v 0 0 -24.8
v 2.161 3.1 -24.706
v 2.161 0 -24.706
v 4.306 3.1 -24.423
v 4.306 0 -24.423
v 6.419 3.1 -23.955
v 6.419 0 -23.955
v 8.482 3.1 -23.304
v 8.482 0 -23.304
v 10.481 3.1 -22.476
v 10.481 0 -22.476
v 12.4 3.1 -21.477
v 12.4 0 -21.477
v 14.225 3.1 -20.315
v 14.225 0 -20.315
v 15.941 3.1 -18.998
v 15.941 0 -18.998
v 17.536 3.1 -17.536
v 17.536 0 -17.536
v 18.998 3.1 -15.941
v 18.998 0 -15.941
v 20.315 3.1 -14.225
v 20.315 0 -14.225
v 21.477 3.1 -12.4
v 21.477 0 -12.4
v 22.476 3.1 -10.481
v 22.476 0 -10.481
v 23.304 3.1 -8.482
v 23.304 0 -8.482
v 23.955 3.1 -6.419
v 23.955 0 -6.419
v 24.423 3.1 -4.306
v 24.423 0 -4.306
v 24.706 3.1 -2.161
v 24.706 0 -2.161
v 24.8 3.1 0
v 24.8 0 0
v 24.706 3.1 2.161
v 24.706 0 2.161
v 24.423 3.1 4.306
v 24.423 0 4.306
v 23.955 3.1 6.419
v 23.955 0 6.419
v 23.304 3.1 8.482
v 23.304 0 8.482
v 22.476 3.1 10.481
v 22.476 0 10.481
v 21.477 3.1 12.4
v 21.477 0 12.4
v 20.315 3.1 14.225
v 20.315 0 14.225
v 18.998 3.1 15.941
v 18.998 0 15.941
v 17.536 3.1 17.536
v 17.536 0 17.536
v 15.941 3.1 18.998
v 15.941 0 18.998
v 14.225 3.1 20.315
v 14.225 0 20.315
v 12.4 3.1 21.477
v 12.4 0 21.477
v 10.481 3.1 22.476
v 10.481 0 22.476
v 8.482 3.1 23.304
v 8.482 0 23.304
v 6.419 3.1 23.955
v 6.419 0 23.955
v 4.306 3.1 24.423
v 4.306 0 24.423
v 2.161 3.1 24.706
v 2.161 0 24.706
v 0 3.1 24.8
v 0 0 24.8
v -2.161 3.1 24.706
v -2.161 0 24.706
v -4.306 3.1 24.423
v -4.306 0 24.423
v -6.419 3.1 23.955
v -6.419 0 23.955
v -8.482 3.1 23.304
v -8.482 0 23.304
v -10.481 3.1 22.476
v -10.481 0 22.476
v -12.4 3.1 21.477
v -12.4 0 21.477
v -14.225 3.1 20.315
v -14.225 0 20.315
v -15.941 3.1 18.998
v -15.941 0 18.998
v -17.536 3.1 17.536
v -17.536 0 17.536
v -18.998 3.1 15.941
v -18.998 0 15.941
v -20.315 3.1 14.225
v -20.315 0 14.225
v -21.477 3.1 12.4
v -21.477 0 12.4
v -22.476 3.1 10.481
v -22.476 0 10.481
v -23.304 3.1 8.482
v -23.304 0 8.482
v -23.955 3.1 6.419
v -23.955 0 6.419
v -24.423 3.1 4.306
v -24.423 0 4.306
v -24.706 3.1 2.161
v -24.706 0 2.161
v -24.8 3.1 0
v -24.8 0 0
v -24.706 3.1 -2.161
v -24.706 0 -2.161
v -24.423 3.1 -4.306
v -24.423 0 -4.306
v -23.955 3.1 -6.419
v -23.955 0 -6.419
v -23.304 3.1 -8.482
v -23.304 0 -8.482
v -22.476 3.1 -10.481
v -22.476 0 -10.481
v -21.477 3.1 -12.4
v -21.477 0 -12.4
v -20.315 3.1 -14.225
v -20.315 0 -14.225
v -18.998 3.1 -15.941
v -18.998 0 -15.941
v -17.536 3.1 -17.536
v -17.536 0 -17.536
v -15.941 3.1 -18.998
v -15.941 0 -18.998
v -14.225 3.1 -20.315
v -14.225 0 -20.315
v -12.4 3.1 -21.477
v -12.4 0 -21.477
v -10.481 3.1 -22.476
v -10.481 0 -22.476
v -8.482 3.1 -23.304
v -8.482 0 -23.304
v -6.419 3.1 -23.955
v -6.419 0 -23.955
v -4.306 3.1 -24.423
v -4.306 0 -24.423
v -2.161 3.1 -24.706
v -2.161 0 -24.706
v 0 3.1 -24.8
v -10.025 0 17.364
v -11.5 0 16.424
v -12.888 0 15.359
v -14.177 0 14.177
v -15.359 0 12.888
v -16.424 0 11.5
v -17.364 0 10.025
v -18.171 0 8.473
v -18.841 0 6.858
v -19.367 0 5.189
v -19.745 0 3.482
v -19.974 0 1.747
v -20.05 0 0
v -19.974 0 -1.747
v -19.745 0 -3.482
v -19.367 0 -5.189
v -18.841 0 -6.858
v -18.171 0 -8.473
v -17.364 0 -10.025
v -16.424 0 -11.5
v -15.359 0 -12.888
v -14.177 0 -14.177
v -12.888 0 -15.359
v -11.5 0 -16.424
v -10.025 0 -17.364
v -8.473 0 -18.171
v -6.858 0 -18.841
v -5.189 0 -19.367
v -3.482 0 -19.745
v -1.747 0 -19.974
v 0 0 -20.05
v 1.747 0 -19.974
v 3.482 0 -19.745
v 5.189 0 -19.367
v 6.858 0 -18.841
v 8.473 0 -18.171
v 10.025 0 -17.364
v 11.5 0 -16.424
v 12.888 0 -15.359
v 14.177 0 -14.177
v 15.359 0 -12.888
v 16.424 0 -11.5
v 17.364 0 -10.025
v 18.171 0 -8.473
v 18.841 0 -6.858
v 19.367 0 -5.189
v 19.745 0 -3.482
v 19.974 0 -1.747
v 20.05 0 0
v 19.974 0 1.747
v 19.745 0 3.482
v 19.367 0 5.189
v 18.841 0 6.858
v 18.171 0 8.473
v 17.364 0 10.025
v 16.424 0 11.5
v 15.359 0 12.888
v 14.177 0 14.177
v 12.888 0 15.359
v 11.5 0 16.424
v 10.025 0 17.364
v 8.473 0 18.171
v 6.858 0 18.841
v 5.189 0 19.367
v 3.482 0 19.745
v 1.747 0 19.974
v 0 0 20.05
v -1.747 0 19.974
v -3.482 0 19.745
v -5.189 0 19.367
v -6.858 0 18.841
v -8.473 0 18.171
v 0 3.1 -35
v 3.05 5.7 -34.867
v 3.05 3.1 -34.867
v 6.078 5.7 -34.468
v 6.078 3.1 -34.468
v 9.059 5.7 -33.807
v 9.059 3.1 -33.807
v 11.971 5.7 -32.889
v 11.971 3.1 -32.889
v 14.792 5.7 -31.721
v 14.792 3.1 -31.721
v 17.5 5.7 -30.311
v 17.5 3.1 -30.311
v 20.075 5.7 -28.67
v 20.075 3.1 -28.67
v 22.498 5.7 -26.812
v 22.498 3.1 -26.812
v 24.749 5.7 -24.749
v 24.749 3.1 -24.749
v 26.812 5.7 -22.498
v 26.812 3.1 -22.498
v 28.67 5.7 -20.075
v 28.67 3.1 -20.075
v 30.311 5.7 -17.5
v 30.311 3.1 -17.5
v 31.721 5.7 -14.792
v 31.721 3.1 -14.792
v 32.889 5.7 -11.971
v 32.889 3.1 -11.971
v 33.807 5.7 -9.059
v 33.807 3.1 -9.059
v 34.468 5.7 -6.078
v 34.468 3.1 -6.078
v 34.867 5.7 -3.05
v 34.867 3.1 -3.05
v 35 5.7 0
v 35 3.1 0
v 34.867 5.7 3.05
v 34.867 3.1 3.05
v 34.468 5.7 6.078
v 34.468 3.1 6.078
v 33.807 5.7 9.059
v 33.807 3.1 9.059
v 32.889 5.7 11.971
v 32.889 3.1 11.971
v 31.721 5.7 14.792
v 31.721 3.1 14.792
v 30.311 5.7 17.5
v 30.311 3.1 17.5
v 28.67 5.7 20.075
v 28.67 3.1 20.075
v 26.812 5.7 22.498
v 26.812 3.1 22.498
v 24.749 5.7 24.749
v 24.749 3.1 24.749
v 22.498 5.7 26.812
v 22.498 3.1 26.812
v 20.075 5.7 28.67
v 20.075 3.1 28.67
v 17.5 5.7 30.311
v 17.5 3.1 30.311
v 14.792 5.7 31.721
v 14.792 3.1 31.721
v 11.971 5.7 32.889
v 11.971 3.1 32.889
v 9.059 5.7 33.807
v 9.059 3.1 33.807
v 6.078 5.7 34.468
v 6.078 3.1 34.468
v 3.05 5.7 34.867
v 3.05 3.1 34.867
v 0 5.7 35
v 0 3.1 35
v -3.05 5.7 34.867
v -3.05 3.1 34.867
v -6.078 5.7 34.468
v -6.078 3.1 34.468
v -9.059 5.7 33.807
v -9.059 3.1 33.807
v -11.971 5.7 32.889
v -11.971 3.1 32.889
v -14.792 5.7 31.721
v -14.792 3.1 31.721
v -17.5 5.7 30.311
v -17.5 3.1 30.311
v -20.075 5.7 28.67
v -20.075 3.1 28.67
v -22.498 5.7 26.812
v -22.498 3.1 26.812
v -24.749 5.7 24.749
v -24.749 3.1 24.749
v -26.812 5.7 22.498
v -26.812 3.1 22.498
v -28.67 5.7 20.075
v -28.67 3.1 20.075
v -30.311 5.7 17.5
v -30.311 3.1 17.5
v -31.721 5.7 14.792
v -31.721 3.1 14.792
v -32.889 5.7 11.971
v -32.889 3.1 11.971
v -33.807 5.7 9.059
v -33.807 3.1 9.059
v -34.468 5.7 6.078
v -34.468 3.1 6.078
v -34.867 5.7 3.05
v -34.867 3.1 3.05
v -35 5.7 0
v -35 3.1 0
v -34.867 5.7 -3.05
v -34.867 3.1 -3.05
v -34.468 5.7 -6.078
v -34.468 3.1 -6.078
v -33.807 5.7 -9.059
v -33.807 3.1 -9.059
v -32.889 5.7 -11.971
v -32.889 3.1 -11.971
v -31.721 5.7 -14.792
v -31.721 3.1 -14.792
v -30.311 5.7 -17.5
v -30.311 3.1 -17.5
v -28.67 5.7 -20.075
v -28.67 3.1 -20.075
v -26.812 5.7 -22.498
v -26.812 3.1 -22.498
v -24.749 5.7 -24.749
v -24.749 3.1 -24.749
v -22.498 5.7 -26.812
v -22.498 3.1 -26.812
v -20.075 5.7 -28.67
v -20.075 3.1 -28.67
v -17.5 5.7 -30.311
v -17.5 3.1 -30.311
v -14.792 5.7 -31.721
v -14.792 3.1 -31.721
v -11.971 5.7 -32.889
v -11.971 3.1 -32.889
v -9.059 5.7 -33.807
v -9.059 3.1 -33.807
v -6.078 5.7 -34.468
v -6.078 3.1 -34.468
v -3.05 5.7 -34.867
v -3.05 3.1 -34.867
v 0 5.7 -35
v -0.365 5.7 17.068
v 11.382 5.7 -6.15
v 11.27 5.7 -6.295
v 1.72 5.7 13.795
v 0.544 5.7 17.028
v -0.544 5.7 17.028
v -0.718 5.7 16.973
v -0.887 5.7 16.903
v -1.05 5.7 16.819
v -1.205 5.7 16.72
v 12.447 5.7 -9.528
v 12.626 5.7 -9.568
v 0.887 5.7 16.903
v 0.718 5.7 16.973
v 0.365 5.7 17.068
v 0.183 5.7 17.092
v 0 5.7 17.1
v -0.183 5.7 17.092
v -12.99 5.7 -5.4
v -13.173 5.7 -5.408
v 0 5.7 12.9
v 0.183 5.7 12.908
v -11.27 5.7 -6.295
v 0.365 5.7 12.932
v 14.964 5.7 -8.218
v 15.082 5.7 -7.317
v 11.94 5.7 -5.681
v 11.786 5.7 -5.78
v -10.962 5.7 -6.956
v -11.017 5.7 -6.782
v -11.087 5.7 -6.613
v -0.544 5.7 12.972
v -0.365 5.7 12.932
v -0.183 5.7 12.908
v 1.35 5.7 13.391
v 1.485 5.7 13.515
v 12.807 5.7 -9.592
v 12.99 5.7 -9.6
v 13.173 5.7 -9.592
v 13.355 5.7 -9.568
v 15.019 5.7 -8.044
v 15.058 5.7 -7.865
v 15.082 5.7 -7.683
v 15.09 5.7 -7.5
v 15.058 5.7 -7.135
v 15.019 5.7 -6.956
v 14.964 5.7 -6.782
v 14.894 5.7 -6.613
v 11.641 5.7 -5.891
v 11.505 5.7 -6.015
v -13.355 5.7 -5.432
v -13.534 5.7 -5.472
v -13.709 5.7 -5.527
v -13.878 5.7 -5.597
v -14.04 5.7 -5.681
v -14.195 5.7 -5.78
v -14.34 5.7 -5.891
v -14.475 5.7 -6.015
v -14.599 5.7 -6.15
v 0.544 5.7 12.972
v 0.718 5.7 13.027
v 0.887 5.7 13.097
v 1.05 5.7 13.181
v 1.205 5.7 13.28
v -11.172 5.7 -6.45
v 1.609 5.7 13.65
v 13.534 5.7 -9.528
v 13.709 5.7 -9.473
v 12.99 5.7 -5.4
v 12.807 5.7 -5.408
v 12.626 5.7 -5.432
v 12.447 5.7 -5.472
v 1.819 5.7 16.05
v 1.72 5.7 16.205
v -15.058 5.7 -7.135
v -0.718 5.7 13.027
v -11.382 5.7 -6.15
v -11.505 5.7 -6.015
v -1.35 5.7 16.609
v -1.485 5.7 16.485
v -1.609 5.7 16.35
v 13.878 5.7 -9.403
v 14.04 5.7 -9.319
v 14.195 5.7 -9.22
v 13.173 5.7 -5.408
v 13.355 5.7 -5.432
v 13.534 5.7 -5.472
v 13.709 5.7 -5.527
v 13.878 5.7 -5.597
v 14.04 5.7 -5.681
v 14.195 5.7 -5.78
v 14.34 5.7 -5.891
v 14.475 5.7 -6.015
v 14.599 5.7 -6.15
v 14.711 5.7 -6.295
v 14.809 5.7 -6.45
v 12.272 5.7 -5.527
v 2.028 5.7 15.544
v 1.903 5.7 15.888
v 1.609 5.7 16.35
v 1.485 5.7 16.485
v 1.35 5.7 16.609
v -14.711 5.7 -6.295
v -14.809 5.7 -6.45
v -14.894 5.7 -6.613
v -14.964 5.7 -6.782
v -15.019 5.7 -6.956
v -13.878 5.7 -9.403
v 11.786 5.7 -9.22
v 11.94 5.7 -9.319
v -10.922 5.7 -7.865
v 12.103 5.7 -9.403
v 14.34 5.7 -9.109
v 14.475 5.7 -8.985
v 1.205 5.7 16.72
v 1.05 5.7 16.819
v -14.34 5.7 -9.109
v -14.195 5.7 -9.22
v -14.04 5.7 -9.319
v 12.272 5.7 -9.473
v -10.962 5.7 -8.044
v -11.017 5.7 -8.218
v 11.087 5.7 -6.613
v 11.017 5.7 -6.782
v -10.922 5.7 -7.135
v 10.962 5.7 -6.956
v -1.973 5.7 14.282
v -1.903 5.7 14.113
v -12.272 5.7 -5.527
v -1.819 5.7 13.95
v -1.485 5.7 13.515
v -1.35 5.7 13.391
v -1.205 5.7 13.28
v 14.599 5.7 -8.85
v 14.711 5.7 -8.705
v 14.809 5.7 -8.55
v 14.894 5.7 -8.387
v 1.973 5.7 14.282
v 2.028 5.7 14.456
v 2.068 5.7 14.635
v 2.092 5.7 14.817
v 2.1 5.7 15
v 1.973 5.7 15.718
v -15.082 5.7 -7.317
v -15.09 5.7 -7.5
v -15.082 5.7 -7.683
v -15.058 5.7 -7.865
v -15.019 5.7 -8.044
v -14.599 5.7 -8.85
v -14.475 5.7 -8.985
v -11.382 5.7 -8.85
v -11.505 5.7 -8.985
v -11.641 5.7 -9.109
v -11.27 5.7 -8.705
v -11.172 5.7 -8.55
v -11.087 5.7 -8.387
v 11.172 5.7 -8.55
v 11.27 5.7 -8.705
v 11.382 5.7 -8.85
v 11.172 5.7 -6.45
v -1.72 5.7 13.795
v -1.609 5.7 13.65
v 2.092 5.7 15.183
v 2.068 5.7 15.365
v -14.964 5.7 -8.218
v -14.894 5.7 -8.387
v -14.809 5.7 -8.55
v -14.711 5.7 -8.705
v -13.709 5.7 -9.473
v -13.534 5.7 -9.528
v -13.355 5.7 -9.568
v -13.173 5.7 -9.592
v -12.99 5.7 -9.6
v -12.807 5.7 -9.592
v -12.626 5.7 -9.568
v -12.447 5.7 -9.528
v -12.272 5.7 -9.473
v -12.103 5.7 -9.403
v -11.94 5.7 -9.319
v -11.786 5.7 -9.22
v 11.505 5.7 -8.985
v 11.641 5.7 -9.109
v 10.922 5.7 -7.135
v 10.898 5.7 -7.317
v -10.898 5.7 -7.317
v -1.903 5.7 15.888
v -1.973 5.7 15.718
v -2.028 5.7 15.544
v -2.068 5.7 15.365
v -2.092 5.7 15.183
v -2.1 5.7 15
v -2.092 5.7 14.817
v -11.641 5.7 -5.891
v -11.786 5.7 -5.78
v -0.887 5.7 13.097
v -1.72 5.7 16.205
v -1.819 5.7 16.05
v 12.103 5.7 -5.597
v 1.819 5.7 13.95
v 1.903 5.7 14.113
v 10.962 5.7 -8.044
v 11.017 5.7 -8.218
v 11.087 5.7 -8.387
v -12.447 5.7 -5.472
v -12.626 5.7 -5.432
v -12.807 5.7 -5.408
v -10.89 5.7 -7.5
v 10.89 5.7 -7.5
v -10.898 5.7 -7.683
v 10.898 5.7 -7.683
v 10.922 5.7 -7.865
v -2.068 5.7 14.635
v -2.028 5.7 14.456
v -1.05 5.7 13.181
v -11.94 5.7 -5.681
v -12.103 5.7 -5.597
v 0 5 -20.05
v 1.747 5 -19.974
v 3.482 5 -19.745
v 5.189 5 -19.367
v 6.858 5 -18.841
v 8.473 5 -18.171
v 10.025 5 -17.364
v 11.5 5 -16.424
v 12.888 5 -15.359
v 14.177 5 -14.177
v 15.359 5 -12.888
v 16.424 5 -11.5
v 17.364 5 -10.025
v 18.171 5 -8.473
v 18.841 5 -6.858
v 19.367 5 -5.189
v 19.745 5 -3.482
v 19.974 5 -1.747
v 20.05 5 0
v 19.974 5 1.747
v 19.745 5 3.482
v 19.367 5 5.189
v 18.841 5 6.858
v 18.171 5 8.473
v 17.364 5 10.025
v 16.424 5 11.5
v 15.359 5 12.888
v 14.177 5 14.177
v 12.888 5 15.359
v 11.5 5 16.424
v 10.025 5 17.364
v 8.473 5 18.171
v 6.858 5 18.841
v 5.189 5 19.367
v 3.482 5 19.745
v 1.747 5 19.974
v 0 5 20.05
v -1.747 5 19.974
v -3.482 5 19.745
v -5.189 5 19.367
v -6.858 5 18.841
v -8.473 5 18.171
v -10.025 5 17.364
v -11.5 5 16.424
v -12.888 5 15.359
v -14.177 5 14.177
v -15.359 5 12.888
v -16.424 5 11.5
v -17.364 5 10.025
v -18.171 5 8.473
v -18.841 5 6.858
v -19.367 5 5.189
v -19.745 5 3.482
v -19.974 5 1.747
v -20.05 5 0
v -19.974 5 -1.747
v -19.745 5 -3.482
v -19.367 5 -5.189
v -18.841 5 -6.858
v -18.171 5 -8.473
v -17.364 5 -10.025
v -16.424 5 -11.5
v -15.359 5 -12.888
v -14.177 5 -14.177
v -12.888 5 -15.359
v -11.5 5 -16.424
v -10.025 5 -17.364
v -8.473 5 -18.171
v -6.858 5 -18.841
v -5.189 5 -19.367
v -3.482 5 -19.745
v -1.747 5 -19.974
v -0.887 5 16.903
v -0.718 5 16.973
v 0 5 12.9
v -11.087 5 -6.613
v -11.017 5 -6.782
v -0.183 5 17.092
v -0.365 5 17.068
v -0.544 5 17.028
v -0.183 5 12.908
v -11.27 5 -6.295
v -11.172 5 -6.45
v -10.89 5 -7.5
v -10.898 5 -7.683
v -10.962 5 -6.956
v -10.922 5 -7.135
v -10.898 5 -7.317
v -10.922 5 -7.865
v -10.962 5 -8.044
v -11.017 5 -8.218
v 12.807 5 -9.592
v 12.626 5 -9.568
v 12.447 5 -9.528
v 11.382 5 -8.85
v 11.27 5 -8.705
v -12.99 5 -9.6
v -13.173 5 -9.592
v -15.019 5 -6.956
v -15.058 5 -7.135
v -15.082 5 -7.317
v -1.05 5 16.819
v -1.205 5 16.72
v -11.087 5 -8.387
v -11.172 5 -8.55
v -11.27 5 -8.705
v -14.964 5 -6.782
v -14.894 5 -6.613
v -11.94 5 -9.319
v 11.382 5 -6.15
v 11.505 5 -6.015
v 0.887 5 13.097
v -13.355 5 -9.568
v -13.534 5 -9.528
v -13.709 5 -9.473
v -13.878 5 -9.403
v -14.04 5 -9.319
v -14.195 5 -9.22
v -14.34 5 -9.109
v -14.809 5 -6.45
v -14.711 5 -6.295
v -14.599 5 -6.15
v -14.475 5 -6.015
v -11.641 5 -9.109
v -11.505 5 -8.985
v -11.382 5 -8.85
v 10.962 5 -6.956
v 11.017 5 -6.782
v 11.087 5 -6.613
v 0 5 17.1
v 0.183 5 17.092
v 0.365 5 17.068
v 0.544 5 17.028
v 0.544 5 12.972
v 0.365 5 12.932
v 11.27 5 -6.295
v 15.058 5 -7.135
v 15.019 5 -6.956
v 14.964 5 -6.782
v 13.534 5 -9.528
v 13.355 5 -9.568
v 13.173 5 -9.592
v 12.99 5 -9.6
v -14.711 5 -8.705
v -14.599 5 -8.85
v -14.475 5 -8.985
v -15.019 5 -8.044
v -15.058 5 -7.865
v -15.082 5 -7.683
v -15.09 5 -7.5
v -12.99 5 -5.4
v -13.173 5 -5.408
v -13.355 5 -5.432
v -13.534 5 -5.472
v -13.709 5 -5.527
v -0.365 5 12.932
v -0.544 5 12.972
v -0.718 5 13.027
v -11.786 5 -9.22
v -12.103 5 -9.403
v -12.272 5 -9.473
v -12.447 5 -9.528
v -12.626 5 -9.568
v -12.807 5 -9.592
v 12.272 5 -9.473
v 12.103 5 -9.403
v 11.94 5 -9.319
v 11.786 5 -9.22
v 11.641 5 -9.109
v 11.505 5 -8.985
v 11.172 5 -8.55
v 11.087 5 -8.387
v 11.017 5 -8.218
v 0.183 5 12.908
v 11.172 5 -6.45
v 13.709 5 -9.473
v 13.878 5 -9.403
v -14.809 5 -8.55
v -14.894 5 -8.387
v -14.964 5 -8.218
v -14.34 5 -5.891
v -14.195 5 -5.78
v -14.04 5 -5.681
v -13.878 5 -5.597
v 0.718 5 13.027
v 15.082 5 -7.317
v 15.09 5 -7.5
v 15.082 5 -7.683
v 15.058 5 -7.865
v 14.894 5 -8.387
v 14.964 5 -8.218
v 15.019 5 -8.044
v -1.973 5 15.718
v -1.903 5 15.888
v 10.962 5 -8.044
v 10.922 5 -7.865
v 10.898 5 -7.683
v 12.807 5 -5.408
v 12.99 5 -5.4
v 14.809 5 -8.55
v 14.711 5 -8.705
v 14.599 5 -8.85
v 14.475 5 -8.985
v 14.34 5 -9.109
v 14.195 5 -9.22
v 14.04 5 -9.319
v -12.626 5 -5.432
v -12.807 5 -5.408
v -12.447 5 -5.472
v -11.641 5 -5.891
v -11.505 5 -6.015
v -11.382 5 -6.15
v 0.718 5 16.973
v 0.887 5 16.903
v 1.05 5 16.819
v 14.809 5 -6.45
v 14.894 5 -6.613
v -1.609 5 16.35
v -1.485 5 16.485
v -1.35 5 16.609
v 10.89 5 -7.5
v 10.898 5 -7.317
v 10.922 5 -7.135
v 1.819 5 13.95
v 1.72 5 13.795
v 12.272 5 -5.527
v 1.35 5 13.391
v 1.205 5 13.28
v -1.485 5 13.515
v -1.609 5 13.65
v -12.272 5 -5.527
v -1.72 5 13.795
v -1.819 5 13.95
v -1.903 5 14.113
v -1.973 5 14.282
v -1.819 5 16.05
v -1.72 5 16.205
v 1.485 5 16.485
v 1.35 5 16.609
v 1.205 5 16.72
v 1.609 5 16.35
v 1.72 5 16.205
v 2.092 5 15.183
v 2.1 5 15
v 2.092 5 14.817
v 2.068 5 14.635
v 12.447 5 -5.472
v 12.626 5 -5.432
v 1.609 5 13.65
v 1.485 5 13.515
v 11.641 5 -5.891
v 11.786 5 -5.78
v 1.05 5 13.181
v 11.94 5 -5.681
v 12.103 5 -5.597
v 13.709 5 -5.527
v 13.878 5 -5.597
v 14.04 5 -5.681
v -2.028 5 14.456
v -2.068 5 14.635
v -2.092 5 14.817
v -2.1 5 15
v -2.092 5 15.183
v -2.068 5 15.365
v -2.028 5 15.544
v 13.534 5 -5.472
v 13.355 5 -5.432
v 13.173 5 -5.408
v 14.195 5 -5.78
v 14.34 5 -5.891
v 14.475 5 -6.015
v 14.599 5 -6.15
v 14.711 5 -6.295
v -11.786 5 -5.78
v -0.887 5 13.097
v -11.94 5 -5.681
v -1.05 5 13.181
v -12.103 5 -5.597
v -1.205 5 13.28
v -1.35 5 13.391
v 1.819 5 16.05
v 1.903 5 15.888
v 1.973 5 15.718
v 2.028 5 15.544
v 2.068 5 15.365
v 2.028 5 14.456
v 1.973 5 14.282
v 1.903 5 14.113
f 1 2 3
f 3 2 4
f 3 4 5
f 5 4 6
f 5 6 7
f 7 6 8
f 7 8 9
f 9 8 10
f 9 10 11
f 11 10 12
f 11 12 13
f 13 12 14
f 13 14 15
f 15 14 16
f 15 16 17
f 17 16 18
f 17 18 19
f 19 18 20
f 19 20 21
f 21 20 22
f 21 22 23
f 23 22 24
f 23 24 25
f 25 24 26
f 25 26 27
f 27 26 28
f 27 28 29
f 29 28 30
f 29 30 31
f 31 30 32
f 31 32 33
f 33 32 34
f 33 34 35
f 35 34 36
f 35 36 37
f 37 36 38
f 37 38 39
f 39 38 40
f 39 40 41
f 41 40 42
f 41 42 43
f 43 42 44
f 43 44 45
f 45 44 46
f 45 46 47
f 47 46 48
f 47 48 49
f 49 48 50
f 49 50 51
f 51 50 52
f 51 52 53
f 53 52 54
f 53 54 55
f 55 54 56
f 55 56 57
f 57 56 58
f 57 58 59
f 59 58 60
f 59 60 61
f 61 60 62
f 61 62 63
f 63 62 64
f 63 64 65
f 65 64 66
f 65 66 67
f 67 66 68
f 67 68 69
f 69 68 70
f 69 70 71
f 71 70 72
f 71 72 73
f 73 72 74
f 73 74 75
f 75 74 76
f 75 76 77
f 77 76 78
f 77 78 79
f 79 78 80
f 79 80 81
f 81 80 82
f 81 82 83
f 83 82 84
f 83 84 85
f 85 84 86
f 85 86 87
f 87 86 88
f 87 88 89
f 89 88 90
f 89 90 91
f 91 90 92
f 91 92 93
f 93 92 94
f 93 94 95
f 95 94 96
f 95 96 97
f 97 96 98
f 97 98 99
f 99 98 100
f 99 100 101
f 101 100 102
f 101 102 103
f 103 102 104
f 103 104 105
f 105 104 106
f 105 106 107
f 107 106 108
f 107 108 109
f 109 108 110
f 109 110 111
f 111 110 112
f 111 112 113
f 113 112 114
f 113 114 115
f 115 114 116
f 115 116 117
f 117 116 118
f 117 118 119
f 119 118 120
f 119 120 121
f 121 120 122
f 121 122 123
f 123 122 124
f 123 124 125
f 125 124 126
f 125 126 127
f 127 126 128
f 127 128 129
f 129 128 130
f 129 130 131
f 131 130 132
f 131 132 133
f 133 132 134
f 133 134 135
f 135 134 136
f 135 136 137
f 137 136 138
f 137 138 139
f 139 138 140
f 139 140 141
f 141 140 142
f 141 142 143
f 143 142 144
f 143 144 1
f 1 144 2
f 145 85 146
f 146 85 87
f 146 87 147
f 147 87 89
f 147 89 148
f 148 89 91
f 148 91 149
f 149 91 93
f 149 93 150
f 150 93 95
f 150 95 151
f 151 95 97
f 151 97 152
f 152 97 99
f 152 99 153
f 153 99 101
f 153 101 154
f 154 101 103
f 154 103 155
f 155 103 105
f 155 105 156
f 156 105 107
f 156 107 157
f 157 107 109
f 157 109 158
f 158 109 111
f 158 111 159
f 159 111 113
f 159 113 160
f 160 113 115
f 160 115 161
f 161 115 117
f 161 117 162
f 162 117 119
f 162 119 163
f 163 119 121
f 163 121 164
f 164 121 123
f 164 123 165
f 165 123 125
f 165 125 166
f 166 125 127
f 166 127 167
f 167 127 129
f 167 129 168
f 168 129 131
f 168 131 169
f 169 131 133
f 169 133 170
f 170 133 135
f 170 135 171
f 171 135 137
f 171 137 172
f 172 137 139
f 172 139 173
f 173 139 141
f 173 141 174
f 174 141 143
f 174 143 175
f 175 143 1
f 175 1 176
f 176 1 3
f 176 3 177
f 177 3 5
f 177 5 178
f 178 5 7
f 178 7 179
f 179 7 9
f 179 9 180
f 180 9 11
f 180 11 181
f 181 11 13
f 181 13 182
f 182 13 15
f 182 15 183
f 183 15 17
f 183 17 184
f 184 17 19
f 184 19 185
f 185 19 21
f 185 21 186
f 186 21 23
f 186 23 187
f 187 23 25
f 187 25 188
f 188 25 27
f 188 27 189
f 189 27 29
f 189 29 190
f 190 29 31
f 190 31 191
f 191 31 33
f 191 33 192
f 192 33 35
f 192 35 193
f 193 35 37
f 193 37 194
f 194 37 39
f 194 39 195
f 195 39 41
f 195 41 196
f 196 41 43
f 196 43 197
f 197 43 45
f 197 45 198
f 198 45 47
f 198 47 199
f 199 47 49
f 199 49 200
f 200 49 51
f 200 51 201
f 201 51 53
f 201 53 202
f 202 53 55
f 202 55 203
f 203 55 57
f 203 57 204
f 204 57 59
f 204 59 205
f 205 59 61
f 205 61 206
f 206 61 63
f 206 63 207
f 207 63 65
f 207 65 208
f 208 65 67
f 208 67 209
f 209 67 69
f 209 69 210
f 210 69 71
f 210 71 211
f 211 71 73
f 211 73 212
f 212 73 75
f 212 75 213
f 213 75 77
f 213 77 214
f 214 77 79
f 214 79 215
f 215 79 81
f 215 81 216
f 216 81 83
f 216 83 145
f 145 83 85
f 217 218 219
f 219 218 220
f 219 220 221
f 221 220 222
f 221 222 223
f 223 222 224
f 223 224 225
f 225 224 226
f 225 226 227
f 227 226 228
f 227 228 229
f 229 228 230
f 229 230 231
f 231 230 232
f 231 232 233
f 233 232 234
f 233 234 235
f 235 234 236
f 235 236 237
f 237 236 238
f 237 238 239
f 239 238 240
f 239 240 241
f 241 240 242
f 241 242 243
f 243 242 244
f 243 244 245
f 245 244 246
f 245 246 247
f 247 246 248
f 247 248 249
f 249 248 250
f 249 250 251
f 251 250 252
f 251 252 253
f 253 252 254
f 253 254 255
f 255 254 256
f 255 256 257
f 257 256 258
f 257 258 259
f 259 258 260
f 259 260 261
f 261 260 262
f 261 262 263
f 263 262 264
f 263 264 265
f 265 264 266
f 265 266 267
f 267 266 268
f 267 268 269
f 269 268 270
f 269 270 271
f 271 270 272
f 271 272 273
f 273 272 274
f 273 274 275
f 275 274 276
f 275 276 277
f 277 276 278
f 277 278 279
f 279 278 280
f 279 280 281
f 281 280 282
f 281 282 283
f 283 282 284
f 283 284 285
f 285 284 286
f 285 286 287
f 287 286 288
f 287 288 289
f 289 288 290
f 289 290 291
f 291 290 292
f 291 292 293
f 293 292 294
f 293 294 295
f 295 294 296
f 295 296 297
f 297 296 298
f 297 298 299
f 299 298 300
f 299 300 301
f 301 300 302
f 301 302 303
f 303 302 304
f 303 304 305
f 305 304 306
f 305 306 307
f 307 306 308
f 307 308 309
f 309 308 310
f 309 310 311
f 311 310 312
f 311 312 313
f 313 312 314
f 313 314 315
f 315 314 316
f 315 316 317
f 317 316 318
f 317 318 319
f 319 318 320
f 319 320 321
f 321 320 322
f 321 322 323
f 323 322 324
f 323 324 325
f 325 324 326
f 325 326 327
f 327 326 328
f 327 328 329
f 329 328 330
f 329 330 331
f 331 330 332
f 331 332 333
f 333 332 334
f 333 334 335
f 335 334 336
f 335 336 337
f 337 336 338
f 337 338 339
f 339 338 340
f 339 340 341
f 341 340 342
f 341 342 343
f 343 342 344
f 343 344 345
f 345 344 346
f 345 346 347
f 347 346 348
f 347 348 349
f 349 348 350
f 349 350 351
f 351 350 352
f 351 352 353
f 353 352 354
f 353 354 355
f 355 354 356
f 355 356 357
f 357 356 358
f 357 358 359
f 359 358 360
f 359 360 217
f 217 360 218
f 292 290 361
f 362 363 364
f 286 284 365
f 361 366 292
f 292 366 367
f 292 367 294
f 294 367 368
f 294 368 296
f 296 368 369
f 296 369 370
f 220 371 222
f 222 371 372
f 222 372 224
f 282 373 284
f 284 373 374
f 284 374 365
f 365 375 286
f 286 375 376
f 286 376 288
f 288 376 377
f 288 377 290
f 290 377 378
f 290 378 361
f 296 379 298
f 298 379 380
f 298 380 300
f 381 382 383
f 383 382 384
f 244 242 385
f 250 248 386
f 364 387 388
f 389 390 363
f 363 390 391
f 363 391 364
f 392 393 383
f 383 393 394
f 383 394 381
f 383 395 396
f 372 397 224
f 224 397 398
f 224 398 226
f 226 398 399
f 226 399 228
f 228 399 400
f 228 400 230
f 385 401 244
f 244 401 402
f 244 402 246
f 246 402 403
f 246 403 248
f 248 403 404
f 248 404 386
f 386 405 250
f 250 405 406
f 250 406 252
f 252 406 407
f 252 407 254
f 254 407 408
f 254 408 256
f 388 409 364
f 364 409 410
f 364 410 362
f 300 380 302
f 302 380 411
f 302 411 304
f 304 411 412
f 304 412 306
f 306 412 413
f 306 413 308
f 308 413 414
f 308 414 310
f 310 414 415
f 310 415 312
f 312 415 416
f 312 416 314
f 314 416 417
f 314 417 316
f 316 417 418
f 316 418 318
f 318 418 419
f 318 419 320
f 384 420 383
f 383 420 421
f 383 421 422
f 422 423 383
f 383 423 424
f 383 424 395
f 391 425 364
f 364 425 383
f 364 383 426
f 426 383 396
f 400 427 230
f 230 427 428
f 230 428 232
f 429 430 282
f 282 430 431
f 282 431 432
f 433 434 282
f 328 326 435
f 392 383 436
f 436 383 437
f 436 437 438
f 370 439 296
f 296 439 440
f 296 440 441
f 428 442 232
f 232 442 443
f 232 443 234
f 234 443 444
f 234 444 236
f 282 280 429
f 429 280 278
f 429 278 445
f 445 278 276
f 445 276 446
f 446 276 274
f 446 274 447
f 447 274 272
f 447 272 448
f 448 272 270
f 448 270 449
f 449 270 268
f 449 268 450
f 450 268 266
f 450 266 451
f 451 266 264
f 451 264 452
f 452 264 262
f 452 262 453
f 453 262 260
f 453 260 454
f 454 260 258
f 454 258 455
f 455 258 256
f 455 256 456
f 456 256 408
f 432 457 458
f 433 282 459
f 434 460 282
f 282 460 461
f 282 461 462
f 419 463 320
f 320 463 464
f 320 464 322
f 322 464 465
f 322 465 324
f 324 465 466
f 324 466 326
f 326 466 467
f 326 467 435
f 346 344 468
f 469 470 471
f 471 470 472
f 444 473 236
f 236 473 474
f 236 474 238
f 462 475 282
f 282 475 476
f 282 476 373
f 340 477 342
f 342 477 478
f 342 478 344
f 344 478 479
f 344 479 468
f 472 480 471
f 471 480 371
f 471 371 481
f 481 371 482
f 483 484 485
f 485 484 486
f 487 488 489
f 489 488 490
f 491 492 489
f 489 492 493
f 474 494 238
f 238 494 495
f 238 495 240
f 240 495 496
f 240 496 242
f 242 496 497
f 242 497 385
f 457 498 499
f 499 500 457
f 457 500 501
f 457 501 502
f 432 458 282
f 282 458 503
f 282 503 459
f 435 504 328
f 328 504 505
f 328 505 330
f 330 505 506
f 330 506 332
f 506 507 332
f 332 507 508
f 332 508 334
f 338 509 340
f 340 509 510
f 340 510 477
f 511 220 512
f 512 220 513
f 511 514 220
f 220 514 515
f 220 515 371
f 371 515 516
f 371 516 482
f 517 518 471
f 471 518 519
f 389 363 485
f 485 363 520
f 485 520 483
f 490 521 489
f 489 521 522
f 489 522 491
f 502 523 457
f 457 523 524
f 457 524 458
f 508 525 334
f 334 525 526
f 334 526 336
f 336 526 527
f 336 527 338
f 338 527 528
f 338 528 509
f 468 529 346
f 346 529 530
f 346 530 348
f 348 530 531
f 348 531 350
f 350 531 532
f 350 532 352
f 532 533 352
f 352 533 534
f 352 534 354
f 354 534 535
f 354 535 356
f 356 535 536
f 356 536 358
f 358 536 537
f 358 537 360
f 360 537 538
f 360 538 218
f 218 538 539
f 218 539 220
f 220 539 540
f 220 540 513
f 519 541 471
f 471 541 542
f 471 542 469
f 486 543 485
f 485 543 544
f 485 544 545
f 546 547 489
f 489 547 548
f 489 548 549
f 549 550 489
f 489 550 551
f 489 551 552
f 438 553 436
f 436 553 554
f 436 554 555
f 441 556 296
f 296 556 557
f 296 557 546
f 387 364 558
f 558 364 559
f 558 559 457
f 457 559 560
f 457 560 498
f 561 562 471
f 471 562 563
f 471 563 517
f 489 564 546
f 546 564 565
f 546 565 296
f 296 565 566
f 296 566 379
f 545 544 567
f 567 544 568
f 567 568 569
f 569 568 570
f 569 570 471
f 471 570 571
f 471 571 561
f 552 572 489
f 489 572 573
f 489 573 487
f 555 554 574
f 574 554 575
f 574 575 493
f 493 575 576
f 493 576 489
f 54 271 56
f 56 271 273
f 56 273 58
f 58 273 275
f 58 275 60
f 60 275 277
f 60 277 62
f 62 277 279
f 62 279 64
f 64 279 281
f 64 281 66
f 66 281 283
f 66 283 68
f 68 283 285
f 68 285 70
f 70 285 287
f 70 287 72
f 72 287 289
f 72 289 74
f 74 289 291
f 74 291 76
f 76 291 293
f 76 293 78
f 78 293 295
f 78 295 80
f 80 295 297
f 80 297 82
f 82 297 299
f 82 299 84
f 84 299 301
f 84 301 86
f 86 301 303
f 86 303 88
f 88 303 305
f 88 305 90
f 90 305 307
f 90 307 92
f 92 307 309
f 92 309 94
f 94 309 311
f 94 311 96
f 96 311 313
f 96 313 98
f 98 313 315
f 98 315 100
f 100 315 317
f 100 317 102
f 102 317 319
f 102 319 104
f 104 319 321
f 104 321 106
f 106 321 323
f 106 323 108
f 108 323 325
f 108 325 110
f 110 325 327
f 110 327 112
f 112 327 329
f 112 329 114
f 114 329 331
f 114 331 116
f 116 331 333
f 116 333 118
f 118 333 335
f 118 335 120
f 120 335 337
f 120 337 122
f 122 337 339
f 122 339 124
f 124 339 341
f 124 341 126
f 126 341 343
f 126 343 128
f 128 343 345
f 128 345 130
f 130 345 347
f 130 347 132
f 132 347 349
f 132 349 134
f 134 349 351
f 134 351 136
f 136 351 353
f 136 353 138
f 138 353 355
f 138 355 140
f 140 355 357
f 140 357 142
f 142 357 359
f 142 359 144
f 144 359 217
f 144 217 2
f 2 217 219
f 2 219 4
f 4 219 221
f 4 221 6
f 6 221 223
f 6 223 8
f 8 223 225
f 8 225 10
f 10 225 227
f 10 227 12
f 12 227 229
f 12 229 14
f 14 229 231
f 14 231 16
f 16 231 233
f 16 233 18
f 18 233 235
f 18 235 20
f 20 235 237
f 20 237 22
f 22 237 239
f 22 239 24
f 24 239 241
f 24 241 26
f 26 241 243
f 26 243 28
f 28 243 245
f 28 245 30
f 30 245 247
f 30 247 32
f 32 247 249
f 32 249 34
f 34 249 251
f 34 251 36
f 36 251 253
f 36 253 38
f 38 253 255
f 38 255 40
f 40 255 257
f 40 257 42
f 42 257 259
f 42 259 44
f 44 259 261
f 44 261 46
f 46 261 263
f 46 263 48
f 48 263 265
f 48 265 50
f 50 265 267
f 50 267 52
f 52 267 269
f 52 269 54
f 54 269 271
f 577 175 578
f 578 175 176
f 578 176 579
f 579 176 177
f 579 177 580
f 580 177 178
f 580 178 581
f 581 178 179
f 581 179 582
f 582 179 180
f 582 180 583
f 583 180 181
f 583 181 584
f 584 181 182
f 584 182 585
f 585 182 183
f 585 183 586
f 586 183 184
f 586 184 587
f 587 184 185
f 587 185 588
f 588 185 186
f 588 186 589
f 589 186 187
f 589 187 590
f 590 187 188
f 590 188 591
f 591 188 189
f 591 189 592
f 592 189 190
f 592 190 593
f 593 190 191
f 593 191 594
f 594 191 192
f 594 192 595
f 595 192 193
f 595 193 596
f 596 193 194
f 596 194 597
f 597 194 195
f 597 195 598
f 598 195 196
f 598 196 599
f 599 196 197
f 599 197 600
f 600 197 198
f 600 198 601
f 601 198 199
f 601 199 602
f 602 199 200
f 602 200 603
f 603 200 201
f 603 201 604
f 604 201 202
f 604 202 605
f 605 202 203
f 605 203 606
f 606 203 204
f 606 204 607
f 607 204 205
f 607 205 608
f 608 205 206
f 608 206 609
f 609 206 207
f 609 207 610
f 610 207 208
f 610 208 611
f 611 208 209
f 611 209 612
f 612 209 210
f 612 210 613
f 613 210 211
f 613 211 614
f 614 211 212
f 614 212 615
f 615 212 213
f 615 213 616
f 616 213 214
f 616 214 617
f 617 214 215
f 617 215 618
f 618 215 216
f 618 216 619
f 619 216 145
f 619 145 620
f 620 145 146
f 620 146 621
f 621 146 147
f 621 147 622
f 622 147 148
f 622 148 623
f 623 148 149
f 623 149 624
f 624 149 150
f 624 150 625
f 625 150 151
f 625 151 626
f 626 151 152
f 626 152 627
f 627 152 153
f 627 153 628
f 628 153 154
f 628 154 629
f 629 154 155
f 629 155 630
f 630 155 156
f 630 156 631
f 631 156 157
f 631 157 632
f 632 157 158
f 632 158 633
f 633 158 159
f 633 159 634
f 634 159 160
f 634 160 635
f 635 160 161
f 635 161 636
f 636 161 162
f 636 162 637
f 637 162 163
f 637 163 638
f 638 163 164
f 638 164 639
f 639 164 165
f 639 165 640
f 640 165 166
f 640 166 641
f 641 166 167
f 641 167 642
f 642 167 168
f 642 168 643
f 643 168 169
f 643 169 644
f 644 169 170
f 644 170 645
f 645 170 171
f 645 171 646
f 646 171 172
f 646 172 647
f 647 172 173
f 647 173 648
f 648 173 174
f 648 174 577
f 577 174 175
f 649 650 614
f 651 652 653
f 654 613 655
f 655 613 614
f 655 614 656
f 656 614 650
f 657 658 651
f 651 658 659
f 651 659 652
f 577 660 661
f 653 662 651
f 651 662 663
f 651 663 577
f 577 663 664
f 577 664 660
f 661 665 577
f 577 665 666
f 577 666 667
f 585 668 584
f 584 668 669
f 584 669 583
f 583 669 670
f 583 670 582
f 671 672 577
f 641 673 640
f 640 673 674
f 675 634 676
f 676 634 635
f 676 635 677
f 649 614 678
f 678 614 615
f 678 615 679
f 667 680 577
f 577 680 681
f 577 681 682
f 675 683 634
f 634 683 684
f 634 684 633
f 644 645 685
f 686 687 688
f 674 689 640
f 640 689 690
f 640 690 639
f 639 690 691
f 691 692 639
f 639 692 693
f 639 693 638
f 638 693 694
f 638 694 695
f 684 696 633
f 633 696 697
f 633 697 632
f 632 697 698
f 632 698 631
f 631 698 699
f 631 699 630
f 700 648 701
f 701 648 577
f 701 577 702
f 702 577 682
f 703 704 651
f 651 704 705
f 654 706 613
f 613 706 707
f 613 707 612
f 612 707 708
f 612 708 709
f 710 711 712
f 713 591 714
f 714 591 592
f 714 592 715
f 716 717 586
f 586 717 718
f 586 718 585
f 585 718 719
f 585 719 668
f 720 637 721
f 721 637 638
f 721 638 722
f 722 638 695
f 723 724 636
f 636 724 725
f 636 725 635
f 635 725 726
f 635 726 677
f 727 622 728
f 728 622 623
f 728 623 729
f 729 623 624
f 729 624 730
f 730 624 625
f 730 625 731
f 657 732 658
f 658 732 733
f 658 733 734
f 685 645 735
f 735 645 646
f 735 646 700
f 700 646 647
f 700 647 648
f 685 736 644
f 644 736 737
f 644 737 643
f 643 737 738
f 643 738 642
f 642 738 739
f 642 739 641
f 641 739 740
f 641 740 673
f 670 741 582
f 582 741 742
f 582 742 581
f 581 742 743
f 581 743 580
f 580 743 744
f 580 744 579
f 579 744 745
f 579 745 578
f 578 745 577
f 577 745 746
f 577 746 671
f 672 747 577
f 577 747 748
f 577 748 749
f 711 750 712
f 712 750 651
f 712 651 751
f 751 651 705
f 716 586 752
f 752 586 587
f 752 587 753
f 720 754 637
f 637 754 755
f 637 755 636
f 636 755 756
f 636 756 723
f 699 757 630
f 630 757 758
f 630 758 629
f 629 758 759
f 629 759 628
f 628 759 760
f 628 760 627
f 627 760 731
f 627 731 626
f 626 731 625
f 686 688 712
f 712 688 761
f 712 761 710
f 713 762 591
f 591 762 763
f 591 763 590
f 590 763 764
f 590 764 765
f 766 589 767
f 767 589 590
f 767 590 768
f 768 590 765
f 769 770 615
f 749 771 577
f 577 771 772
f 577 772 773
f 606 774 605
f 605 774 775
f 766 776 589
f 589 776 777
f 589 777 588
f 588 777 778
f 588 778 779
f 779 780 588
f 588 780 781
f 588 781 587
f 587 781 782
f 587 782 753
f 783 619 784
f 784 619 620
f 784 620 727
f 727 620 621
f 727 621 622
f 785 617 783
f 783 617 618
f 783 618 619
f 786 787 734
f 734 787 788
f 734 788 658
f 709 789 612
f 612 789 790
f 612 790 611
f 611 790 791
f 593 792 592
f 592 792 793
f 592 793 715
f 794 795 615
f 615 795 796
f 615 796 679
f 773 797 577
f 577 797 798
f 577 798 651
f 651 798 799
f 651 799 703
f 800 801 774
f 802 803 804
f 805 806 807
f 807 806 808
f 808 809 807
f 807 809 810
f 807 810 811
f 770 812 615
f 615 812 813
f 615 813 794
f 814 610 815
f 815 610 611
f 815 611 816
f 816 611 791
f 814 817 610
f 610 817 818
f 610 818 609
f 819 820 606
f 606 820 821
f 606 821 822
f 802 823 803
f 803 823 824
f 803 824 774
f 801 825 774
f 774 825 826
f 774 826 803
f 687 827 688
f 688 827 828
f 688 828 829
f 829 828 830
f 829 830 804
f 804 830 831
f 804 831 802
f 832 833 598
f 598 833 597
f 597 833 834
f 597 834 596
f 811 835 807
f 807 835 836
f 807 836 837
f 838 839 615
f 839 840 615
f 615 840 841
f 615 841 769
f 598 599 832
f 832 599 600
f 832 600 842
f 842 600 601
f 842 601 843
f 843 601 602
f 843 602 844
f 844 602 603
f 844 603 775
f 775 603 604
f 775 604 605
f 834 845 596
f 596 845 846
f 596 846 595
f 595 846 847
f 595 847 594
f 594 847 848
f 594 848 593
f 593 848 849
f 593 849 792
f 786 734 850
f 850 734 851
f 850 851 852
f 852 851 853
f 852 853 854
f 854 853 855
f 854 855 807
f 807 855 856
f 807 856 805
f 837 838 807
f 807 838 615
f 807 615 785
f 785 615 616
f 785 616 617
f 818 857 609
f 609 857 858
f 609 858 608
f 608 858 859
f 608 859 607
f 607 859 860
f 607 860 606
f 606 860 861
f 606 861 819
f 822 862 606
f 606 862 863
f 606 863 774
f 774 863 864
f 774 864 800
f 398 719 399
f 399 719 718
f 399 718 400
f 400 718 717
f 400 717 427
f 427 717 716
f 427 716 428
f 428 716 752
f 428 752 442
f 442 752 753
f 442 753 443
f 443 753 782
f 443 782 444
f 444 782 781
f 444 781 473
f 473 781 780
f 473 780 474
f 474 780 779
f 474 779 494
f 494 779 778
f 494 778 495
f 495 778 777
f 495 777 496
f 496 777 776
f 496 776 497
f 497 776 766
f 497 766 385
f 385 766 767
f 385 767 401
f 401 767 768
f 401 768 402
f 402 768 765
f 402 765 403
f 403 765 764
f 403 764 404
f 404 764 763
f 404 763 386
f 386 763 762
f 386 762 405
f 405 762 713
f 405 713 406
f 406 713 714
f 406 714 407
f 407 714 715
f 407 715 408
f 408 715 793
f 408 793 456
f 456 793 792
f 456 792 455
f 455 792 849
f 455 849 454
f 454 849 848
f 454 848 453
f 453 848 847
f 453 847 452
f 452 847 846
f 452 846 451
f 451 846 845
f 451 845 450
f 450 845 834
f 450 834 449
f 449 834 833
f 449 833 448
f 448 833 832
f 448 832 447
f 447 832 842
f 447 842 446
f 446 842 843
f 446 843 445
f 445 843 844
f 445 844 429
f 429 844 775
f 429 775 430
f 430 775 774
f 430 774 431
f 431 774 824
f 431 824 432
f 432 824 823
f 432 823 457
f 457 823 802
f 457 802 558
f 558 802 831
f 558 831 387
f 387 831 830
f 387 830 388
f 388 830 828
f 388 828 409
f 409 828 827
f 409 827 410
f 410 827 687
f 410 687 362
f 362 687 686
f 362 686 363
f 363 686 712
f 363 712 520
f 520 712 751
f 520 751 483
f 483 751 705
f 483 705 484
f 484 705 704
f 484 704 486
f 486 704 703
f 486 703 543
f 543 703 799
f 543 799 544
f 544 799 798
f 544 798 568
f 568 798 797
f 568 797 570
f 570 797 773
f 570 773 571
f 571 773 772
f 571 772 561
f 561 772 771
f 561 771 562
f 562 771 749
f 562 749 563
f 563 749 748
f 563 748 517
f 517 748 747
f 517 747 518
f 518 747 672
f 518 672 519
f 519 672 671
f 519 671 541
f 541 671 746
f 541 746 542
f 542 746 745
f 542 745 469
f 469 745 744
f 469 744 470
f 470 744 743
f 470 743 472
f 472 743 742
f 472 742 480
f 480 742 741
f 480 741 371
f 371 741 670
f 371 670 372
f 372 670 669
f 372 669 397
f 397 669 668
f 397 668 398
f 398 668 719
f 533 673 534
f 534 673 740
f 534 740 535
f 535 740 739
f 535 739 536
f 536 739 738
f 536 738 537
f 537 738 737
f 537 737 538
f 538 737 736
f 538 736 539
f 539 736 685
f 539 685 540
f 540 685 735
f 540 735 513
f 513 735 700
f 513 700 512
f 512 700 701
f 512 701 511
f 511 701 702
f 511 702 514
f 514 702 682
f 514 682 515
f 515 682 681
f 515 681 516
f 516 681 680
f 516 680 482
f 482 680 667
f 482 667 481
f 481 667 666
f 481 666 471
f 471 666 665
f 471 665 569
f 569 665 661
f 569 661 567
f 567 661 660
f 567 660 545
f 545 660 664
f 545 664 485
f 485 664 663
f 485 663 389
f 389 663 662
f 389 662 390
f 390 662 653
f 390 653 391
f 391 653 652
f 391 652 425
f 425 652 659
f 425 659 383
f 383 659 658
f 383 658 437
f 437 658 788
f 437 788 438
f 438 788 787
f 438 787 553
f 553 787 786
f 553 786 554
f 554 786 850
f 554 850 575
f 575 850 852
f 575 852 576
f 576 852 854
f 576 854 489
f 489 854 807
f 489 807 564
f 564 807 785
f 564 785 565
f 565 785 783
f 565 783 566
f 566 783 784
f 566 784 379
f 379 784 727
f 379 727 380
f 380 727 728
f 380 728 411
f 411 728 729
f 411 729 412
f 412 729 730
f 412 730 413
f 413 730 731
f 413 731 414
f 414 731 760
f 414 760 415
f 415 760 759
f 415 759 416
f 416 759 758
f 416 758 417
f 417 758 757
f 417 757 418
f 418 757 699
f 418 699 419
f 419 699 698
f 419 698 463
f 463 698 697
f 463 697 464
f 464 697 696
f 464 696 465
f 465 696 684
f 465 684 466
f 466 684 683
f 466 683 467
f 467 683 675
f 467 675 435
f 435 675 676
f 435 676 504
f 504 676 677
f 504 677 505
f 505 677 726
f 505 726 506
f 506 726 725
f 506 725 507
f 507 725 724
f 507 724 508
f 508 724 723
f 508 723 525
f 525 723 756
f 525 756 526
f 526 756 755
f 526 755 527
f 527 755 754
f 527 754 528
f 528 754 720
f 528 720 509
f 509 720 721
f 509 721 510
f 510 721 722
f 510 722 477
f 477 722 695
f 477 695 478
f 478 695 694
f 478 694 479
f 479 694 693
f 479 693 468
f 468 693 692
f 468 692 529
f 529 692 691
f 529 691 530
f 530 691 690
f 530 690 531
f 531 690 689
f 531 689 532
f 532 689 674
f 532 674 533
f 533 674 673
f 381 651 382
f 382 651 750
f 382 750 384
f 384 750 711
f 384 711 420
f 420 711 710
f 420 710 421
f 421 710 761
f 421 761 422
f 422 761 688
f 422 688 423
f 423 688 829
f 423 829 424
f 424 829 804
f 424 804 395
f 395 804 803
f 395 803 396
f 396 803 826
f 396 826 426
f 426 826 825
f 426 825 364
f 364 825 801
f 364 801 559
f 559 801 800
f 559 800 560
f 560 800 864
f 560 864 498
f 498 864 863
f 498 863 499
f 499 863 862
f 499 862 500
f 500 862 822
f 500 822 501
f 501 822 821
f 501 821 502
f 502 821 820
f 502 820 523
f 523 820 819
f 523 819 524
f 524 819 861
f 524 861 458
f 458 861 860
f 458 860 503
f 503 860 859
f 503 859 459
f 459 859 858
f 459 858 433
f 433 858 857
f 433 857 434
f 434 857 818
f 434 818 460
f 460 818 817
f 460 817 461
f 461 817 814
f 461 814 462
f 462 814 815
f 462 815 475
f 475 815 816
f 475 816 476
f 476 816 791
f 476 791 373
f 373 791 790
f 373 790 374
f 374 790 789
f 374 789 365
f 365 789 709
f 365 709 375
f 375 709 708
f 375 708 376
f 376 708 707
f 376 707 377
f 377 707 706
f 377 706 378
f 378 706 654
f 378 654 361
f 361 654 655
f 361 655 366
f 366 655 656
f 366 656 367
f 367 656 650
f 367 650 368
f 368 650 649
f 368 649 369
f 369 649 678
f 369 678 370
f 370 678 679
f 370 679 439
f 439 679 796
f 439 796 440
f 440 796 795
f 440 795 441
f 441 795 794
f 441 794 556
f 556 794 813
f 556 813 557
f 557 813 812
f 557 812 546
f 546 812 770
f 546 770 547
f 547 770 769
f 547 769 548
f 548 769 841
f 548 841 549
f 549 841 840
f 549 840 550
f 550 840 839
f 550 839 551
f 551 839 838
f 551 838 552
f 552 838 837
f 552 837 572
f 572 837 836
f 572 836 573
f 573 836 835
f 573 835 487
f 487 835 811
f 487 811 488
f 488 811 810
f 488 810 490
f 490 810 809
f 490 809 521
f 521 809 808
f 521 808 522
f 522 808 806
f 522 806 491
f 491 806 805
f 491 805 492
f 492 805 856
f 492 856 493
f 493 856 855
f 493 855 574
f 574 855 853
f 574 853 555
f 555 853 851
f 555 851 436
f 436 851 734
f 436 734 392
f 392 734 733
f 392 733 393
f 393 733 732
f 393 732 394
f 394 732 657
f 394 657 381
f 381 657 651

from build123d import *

# Parameters (mm, degrees)
SKETCH1_R           = 24.8
BOSS_EXTRUDE1_DEPTH = 3.1
SKETCH2_R           = 35
BOSS_EXTRUDE2_DEPTH = 2.6
SKETCH3_R           = 20.05
CUT_EXTRUDE1_DEPTH  = 5
CUT_EXTRUDE2_REACH  = 51.749
SKETCH4_R           = 2.1


with BuildPart() as part:
    # Sketch1 → Boss-Extrude1 (new body)
    with BuildSketch(Plane(origin=(0, 0, 0), x_dir=(1, 0, 0), z_dir=(0, 1, 0))):
        with Locations(Location((0, 0, 0), (0, 0, 90))):
            Circle(SKETCH1_R)
    extrude(amount=BOSS_EXTRUDE1_DEPTH)

    # Sketch2 → Boss-Extrude2 (add)
    with BuildSketch(Plane(origin=(0, 3.1, 0), x_dir=(1, 0, 0), z_dir=(0, 1, 0))):
        with Locations(Location((0, 0, 0), (0, 0, 270))):
            Circle(SKETCH2_R)
    extrude(amount=BOSS_EXTRUDE2_DEPTH)

    # Sketch3 → Cut-Extrude1 (cut)
    with BuildSketch(Plane.XZ):
        with Locations(Location((0, 0, 0), (0, 0, 270))):
            Circle(SKETCH3_R)
    extrude(amount=-CUT_EXTRUDE1_DEPTH, mode=Mode.SUBTRACT)

    # Sketch4 → Cut-Extrude2 (cut, up to next)
    with BuildSketch(Plane.XZ.offset(-5), mode=Mode.PRIVATE) as cut_extrude2_sk1:
        with Locations(Location((0, 15, 0), (0, 0, 270))):
            Circle(SKETCH4_R)
    cut_extrude2_tool1 = extrude(cut_extrude2_sk1.sketch, amount=-CUT_EXTRUDE2_REACH, mode=Mode.PRIVATE) & part.part
    # Sketch4 → Cut-Extrude2 (cut, up to next)
    with BuildSketch(Plane.XZ.offset(-5), mode=Mode.PRIVATE) as cut_extrude2_sk2:
        with Locations(Location((-12.990381057, -7.5, 0), (0, 0, 270))):
            Circle(SKETCH4_R)
    cut_extrude2_tool2 = extrude(cut_extrude2_sk2.sketch, amount=-CUT_EXTRUDE2_REACH, mode=Mode.PRIVATE) & part.part
    # Sketch4 → Cut-Extrude2 (cut, up to next)
    with BuildSketch(Plane.XZ.offset(-5), mode=Mode.PRIVATE) as cut_extrude2_sk3:
        with Locations(Location((12.990381057, -7.5, 0), (0, 0, 270))):
            Circle(SKETCH4_R)
    cut_extrude2_tool3 = extrude(cut_extrude2_sk3.sketch, amount=-CUT_EXTRUDE2_REACH, mode=Mode.PRIVATE) & part.part
    add(cut_extrude2_tool1.solids().sort_by_distance((0, 5, 15))[0], mode=Mode.SUBTRACT)
    add(cut_extrude2_tool2.solids().sort_by_distance((-12.990381, 5, -7.5))[0], mode=Mode.SUBTRACT)
    add(cut_extrude2_tool3.solids().sort_by_distance((12.990381, 5, -7.5))[0], mode=Mode.SUBTRACT)


solid = part.part
